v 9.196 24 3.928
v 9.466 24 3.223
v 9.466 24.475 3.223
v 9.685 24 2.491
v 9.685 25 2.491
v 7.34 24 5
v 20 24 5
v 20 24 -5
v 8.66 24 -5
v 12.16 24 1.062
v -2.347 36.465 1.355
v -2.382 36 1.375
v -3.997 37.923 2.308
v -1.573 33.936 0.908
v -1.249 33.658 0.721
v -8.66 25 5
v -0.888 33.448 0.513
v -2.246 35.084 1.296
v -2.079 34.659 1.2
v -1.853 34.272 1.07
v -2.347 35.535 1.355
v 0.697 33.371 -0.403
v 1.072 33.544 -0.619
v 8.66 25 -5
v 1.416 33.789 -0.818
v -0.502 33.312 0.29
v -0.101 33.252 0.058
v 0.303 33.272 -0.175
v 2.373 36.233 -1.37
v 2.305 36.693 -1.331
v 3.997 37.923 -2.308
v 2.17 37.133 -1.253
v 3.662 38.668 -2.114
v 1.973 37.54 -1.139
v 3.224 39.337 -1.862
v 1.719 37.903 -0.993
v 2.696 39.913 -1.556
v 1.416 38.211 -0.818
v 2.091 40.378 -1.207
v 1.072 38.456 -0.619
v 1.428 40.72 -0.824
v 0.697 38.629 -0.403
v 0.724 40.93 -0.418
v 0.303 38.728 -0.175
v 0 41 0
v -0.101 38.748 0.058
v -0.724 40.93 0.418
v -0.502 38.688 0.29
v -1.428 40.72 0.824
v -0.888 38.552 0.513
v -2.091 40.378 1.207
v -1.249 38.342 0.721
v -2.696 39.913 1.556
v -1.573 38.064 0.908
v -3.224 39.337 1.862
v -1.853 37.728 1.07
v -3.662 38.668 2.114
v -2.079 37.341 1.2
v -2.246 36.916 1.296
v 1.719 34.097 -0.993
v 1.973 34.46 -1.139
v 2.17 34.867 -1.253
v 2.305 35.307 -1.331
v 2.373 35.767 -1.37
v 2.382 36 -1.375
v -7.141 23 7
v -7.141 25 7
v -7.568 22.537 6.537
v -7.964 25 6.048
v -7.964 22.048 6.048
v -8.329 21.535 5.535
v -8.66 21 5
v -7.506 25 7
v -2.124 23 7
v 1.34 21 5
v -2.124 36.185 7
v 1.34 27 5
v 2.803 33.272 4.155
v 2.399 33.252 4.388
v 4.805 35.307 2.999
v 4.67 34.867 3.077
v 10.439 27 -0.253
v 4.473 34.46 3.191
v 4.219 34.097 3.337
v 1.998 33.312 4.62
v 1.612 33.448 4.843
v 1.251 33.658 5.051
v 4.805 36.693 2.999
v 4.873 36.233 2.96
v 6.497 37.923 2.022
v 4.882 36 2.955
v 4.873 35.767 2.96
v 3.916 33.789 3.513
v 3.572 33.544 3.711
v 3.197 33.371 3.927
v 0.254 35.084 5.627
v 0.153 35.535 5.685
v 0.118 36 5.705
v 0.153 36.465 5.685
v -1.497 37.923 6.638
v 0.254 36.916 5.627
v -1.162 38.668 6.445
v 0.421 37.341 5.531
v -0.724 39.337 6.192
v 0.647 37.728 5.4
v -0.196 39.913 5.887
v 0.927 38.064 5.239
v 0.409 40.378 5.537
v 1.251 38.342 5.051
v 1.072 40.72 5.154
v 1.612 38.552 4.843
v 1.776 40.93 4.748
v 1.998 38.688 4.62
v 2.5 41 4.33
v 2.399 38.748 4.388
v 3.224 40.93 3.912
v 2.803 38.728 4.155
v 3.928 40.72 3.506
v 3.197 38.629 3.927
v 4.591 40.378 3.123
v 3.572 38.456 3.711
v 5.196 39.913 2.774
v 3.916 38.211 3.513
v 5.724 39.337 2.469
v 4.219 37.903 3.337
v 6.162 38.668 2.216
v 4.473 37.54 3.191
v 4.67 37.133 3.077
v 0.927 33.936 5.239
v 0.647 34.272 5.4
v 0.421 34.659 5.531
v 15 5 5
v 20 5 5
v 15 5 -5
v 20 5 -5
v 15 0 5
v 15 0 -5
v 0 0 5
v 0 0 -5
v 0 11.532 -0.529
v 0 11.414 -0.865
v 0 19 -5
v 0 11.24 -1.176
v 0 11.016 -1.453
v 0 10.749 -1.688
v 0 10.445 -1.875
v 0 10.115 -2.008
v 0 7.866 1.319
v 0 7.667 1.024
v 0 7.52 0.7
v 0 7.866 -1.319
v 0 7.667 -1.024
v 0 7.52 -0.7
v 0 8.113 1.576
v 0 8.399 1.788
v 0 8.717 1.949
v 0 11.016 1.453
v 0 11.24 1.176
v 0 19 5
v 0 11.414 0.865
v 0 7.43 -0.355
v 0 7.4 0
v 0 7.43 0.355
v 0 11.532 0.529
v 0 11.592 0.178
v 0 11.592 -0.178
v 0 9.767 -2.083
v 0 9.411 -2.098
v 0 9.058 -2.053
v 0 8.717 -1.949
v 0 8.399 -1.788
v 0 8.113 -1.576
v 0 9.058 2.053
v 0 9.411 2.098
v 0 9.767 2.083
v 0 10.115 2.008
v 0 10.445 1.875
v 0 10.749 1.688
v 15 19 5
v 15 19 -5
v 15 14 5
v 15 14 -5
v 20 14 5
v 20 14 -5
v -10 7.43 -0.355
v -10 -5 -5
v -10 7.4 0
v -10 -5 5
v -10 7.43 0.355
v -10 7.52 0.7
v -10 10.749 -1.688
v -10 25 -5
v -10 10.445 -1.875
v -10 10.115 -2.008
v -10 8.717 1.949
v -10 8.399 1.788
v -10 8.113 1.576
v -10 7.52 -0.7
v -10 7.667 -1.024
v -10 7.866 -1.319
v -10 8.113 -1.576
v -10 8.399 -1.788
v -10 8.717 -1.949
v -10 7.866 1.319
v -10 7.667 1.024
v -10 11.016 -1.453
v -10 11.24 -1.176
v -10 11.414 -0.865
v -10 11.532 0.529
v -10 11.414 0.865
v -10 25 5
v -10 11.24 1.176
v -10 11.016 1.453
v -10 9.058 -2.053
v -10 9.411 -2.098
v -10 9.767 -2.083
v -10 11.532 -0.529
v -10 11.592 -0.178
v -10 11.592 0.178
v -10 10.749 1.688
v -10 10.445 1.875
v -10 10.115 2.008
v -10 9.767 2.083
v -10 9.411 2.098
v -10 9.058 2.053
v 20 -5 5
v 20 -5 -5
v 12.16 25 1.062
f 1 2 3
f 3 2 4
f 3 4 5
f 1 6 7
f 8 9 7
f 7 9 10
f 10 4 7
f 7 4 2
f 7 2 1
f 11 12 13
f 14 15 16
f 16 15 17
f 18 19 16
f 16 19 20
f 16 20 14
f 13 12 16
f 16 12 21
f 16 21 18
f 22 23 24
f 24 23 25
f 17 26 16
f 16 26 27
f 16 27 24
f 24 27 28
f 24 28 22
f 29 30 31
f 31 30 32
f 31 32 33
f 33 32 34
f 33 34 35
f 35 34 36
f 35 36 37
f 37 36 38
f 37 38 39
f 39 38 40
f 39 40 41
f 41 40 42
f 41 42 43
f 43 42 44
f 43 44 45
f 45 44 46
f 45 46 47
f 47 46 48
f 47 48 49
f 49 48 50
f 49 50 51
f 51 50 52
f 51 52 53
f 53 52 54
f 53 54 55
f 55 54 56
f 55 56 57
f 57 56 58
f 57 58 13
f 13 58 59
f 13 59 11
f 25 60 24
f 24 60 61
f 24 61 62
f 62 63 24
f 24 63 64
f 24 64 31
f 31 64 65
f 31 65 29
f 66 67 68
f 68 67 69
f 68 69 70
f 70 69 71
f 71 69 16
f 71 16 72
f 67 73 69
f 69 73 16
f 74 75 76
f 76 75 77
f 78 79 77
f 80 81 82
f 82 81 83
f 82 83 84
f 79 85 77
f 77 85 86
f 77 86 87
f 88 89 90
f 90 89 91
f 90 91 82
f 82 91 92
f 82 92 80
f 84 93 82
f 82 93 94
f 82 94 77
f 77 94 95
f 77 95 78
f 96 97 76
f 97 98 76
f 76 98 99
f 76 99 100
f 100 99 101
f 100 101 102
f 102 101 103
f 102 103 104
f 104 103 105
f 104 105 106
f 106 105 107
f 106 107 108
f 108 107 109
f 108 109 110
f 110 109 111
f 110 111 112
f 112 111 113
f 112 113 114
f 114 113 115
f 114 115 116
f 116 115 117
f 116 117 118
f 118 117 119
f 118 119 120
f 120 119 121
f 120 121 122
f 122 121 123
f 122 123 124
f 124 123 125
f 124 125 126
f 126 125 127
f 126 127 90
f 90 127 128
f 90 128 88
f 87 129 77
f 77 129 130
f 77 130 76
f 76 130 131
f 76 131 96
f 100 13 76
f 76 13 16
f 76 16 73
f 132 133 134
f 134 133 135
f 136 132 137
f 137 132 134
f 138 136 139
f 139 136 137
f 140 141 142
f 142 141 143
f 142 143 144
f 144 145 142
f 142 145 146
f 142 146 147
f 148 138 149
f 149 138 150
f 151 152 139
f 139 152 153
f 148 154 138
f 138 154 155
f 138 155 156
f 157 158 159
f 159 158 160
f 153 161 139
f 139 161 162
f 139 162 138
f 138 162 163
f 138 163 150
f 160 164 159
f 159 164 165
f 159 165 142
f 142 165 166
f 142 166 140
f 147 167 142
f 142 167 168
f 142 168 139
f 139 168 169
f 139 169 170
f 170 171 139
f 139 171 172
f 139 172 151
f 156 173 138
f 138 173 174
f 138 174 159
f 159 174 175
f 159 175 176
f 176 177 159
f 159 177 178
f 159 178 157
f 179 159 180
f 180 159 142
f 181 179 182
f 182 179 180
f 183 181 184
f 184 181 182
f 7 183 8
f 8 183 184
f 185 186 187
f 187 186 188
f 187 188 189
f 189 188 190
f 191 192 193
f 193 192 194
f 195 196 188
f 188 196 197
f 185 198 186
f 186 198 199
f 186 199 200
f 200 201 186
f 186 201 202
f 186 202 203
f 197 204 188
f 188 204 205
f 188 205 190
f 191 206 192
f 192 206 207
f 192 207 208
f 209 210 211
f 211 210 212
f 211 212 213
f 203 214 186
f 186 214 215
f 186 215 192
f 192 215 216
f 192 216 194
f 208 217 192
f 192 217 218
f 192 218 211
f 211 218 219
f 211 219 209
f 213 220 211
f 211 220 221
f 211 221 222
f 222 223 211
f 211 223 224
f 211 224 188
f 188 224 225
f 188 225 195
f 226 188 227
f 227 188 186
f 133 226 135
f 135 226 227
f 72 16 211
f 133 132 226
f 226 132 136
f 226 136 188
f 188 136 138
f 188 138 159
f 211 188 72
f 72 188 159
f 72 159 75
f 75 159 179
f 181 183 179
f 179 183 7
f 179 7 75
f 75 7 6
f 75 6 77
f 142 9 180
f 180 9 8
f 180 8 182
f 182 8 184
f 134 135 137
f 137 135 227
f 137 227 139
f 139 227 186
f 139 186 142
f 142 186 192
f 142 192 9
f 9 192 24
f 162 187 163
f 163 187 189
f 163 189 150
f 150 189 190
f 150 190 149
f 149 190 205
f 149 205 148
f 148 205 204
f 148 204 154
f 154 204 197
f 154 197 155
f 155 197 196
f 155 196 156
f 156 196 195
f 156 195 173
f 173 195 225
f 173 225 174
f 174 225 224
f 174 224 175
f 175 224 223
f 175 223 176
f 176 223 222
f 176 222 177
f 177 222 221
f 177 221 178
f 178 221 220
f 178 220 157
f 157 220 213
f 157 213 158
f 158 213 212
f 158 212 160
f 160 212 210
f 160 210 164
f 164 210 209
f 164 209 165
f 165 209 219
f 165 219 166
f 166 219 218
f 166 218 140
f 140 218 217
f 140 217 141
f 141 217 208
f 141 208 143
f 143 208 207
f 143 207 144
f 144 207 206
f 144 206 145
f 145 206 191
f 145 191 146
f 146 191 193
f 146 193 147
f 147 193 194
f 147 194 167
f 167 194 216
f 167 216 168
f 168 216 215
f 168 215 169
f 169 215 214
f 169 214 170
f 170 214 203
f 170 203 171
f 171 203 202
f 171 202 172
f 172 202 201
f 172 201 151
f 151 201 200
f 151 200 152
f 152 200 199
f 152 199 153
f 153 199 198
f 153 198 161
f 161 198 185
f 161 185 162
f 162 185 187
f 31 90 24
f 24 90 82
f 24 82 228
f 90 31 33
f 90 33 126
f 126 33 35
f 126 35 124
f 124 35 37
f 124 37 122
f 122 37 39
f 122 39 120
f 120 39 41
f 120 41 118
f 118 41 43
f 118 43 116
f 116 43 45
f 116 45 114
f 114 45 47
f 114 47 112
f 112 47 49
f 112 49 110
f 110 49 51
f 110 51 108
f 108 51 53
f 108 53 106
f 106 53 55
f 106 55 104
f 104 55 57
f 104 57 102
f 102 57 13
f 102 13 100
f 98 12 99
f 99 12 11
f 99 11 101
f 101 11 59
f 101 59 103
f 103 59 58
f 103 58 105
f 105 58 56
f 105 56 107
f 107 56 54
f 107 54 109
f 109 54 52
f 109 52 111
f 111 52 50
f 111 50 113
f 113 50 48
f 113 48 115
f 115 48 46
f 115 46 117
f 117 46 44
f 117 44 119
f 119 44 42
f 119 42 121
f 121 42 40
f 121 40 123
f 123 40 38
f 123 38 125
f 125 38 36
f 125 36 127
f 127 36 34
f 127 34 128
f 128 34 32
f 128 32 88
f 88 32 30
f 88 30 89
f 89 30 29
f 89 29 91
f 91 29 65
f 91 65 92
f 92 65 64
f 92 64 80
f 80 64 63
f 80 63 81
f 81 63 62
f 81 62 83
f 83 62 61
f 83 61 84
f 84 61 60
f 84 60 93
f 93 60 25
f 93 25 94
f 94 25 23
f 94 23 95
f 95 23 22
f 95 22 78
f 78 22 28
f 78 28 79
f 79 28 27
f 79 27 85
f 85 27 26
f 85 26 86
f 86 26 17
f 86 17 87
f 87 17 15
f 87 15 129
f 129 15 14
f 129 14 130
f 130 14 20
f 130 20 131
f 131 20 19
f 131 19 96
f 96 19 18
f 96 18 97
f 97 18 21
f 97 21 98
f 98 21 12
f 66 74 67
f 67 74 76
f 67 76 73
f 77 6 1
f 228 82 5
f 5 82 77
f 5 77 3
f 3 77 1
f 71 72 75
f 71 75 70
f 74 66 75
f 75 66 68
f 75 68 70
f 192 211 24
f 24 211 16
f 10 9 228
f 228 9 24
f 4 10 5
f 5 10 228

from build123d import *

# Parameters (mm, degrees)
BOSS_EXTRUDE1_DEPTH = 5
SKETCH2_R           = 2.1
CUT_EXTRUDE1_DEPTH  = 10
SKETCH3_R           = 10
BOSS_EXTRUDE2_DEPTH = 1
SKETCH4_R           = 2.75
BOSS_EXTRUDE3_DEPTH = 5
SKETCH5_W           = 50
SKETCH5_H           = 30
SKETCH5_W_2         = 34
SKETCH5_H_2         = 14
CUT_EXTRUDE2_DEPTH  = 52.14684741
CUT_EXTRUDE3_START  = -1
CUT_EXTRUDE3_DEPTH  = 1
CUT_EXTRUDE4_START  = -1
CUT_EXTRUDE4_DEPTH  = 1
CHAMFER1_SIZE       = 3
CHAMFER2_SIZE       = 3
BOSS_EXTRUDE4_DEPTH = 1
BOSS_EXTRUDE5_START = 1
BOSS_EXTRUDE5_DEPTH = 1


with BuildPart() as part:
    # Sketch1 → Boss-Extrude1 (new, symmetric)
    with BuildSketch(Plane.XY):
        Polygon((15, 5), (15, 0), (0, 0), (0, 19), (15, 19), (15, 14), (20, 14), (20, 24), (-10, 24), (-10, -5), (20, -5), (20, 5), align=None)
    extrude(amount=BOSS_EXTRUDE1_DEPTH, both=True)

    # Sketch2 → Cut-Extrude1 (cut)
    with BuildSketch(Plane.ZY.offset(10)):
        with Locations(Location((0, 9.5, 0), (0, 0, 270))):
            Circle(SKETCH2_R)
    extrude(amount=-CUT_EXTRUDE1_DEPTH, mode=Mode.SUBTRACT)

    # Sketch3 → Boss-Extrude2 (add)
    with BuildSketch(Plane(origin=(0, 24, 0), x_dir=(1, 0, 0), z_dir=(0, 1, 0))):
        with Locations(Location((0, 0, 0), (0, 0, 180))):
            Circle(SKETCH3_R)
    extrude(amount=BOSS_EXTRUDE2_DEPTH)

    # Sketch4 → Boss-Extrude3 (add)
    with BuildSketch(Plane(origin=(0, 0, 0), x_dir=(0.866025403784438, 0, -0.500000000000001), z_dir=(0.500000000000001, 0, 0.866025403784438))):
        with BuildLine():
            Line((10, 25), (-10, 25))
            Line((-10, 25), (-4.615384615, 37.923076923))
            ThreePointArc((-4.615384615, 37.923076923), (0, 41), (4.615384615, 37.923076923))
            Line((4.615384615, 37.923076923), (10, 25))
        make_face()
        with Locations((0, 36)):
            Circle(SKETCH4_R, mode=Mode.SUBTRACT)
    extrude(amount=BOSS_EXTRUDE3_DEPTH)

    # Sketch5 → Cut-Extrude2 (cut, through all)
    with BuildSketch(Plane.XZ.offset(5)):
        with Locations((5, 0)):
            Rectangle(SKETCH5_W, SKETCH5_H)
        with Locations((5, 0)):
            Rectangle(SKETCH5_W_2, SKETCH5_H_2, mode=Mode.SUBTRACT)
    extrude(amount=-CUT_EXTRUDE2_DEPTH, mode=Mode.SUBTRACT)

    # Sketch6 → Cut-Extrude3 (cut)
    with BuildSketch(Plane(origin=(0, 25, 0), x_dir=(1, 0, 0), z_dir=(0, 1, 0)).offset(CUT_EXTRUDE3_START)):
        with BuildLine():
            Line((7.141428429, 7), (-7.141428429, 7))
            ThreePointArc((-7.141428429, 7), (-9.920851384, 1.255670262), (-8.660254038, -5))
            Line((-8.660254038, -5), (8.660254038, 5))
            ThreePointArc((8.660254038, 5), (7.963874195, 6.047868038), (7.141428429, 7))
        make_face()
    extrude(amount=CUT_EXTRUDE3_DEPTH, mode=Mode.SUBTRACT)

    # Sketch7 → Cut-Extrude4 (cut)
    with BuildSketch(Plane(origin=(0, 25, 0), x_dir=(1, 0, 0), z_dir=(0, 1, 0)).offset(CUT_EXTRUDE4_START)):
        with BuildLine():
            Line((-2.124355653, -7), (7.141428429, -7))
            ThreePointArc((7.141428429, -7), (9.257815193, -3.780589618), (10, 0))
            Line((10, 0), (-2.124355653, -7))
        make_face()
    extrude(amount=CUT_EXTRUDE4_DEPTH, mode=Mode.SUBTRACT)

    # Chamfer1
    chamfer1_edges = [part.edges().sort_by_distance(p)[0] for p in [
        (5.669872981, 24, 2.5),
    ]]
    chamfer(chamfer1_edges, length=CHAMFER1_SIZE)

    # Chamfer2
    # the kernel refuses this chamfer: 3 mm, written as the material it adds along each edge
    with BuildSketch(Plane(origin=(9.054794926, 24, 5), x_dir=(0, -0.9996219169112968, -0.02749587661058648), z_dir=(-1, 0, 0))) as chamfer2_piece_1_section:
        Polygon((CHAMFER2_SIZE * 0.999621916911, CHAMFER2_SIZE * 0.0274958766106), (-CHAMFER2_SIZE * 0.0274958766106, CHAMFER2_SIZE * 0.999621916911), (0, 0), align=None)
    chamfer2_piece_1 = extrude(amount=25.430097928, mode=Mode.PRIVATE)
    chamfer2_piece_1 = split(chamfer2_piece_1, bisect_by=Plane(origin=(-3.023607394, 22.869371877, 7.519183235), z_dir=(-0.5000000000000006, 0, -0.8660254037844384)), keep=Keep.TOP, mode=Mode.PRIVATE)
    chamfer2_piece_1 = chamfer2_piece_1 & Plane(origin=(0, 22.869371877, 0), x_dir=(-1, 0, 0), z_dir=(0, -1, 0)) * Cylinder(10, 63, mode=Mode.PRIVATE)
    chamfer2_piece_1 = split(chamfer2_piece_1, bisect_by=Plane(origin=(-4.051544608, 22.869371877, 7), z_dir=(0, 0, -1)), keep=Keep.TOP, mode=Mode.PRIVATE)
    add(chamfer2_piece_1)

    # Sketch9 → Boss-Extrude4 (add)
    with BuildSketch(Plane(origin=(0, 24, 0), x_dir=(1, 0, 0), z_dir=(0, 1, 0))):
        Polygon((8.660254038, 5), (-10, 5), (-10, -5), (-8.660254038, -5), align=None)
    extrude(amount=BOSS_EXTRUDE4_DEPTH)

    # Sketch10 → Boss-Extrude5 (add)
    with BuildSketch(Plane.XZ.offset(-25).offset(BOSS_EXTRUDE5_START)):
        with BuildLine():
            Line((8.660254038, -5), (12.160254038, 1.062177826))
            Line((12.160254038, 1.062177826), (9.684658438, 2.491463612))
            ThreePointArc((9.684658438, 2.491463612), (9.907797949, -1.354820946), (8.660254038, -5))
        make_face()
    extrude(amount=-BOSS_EXTRUDE5_DEPTH)


solid = part.part
